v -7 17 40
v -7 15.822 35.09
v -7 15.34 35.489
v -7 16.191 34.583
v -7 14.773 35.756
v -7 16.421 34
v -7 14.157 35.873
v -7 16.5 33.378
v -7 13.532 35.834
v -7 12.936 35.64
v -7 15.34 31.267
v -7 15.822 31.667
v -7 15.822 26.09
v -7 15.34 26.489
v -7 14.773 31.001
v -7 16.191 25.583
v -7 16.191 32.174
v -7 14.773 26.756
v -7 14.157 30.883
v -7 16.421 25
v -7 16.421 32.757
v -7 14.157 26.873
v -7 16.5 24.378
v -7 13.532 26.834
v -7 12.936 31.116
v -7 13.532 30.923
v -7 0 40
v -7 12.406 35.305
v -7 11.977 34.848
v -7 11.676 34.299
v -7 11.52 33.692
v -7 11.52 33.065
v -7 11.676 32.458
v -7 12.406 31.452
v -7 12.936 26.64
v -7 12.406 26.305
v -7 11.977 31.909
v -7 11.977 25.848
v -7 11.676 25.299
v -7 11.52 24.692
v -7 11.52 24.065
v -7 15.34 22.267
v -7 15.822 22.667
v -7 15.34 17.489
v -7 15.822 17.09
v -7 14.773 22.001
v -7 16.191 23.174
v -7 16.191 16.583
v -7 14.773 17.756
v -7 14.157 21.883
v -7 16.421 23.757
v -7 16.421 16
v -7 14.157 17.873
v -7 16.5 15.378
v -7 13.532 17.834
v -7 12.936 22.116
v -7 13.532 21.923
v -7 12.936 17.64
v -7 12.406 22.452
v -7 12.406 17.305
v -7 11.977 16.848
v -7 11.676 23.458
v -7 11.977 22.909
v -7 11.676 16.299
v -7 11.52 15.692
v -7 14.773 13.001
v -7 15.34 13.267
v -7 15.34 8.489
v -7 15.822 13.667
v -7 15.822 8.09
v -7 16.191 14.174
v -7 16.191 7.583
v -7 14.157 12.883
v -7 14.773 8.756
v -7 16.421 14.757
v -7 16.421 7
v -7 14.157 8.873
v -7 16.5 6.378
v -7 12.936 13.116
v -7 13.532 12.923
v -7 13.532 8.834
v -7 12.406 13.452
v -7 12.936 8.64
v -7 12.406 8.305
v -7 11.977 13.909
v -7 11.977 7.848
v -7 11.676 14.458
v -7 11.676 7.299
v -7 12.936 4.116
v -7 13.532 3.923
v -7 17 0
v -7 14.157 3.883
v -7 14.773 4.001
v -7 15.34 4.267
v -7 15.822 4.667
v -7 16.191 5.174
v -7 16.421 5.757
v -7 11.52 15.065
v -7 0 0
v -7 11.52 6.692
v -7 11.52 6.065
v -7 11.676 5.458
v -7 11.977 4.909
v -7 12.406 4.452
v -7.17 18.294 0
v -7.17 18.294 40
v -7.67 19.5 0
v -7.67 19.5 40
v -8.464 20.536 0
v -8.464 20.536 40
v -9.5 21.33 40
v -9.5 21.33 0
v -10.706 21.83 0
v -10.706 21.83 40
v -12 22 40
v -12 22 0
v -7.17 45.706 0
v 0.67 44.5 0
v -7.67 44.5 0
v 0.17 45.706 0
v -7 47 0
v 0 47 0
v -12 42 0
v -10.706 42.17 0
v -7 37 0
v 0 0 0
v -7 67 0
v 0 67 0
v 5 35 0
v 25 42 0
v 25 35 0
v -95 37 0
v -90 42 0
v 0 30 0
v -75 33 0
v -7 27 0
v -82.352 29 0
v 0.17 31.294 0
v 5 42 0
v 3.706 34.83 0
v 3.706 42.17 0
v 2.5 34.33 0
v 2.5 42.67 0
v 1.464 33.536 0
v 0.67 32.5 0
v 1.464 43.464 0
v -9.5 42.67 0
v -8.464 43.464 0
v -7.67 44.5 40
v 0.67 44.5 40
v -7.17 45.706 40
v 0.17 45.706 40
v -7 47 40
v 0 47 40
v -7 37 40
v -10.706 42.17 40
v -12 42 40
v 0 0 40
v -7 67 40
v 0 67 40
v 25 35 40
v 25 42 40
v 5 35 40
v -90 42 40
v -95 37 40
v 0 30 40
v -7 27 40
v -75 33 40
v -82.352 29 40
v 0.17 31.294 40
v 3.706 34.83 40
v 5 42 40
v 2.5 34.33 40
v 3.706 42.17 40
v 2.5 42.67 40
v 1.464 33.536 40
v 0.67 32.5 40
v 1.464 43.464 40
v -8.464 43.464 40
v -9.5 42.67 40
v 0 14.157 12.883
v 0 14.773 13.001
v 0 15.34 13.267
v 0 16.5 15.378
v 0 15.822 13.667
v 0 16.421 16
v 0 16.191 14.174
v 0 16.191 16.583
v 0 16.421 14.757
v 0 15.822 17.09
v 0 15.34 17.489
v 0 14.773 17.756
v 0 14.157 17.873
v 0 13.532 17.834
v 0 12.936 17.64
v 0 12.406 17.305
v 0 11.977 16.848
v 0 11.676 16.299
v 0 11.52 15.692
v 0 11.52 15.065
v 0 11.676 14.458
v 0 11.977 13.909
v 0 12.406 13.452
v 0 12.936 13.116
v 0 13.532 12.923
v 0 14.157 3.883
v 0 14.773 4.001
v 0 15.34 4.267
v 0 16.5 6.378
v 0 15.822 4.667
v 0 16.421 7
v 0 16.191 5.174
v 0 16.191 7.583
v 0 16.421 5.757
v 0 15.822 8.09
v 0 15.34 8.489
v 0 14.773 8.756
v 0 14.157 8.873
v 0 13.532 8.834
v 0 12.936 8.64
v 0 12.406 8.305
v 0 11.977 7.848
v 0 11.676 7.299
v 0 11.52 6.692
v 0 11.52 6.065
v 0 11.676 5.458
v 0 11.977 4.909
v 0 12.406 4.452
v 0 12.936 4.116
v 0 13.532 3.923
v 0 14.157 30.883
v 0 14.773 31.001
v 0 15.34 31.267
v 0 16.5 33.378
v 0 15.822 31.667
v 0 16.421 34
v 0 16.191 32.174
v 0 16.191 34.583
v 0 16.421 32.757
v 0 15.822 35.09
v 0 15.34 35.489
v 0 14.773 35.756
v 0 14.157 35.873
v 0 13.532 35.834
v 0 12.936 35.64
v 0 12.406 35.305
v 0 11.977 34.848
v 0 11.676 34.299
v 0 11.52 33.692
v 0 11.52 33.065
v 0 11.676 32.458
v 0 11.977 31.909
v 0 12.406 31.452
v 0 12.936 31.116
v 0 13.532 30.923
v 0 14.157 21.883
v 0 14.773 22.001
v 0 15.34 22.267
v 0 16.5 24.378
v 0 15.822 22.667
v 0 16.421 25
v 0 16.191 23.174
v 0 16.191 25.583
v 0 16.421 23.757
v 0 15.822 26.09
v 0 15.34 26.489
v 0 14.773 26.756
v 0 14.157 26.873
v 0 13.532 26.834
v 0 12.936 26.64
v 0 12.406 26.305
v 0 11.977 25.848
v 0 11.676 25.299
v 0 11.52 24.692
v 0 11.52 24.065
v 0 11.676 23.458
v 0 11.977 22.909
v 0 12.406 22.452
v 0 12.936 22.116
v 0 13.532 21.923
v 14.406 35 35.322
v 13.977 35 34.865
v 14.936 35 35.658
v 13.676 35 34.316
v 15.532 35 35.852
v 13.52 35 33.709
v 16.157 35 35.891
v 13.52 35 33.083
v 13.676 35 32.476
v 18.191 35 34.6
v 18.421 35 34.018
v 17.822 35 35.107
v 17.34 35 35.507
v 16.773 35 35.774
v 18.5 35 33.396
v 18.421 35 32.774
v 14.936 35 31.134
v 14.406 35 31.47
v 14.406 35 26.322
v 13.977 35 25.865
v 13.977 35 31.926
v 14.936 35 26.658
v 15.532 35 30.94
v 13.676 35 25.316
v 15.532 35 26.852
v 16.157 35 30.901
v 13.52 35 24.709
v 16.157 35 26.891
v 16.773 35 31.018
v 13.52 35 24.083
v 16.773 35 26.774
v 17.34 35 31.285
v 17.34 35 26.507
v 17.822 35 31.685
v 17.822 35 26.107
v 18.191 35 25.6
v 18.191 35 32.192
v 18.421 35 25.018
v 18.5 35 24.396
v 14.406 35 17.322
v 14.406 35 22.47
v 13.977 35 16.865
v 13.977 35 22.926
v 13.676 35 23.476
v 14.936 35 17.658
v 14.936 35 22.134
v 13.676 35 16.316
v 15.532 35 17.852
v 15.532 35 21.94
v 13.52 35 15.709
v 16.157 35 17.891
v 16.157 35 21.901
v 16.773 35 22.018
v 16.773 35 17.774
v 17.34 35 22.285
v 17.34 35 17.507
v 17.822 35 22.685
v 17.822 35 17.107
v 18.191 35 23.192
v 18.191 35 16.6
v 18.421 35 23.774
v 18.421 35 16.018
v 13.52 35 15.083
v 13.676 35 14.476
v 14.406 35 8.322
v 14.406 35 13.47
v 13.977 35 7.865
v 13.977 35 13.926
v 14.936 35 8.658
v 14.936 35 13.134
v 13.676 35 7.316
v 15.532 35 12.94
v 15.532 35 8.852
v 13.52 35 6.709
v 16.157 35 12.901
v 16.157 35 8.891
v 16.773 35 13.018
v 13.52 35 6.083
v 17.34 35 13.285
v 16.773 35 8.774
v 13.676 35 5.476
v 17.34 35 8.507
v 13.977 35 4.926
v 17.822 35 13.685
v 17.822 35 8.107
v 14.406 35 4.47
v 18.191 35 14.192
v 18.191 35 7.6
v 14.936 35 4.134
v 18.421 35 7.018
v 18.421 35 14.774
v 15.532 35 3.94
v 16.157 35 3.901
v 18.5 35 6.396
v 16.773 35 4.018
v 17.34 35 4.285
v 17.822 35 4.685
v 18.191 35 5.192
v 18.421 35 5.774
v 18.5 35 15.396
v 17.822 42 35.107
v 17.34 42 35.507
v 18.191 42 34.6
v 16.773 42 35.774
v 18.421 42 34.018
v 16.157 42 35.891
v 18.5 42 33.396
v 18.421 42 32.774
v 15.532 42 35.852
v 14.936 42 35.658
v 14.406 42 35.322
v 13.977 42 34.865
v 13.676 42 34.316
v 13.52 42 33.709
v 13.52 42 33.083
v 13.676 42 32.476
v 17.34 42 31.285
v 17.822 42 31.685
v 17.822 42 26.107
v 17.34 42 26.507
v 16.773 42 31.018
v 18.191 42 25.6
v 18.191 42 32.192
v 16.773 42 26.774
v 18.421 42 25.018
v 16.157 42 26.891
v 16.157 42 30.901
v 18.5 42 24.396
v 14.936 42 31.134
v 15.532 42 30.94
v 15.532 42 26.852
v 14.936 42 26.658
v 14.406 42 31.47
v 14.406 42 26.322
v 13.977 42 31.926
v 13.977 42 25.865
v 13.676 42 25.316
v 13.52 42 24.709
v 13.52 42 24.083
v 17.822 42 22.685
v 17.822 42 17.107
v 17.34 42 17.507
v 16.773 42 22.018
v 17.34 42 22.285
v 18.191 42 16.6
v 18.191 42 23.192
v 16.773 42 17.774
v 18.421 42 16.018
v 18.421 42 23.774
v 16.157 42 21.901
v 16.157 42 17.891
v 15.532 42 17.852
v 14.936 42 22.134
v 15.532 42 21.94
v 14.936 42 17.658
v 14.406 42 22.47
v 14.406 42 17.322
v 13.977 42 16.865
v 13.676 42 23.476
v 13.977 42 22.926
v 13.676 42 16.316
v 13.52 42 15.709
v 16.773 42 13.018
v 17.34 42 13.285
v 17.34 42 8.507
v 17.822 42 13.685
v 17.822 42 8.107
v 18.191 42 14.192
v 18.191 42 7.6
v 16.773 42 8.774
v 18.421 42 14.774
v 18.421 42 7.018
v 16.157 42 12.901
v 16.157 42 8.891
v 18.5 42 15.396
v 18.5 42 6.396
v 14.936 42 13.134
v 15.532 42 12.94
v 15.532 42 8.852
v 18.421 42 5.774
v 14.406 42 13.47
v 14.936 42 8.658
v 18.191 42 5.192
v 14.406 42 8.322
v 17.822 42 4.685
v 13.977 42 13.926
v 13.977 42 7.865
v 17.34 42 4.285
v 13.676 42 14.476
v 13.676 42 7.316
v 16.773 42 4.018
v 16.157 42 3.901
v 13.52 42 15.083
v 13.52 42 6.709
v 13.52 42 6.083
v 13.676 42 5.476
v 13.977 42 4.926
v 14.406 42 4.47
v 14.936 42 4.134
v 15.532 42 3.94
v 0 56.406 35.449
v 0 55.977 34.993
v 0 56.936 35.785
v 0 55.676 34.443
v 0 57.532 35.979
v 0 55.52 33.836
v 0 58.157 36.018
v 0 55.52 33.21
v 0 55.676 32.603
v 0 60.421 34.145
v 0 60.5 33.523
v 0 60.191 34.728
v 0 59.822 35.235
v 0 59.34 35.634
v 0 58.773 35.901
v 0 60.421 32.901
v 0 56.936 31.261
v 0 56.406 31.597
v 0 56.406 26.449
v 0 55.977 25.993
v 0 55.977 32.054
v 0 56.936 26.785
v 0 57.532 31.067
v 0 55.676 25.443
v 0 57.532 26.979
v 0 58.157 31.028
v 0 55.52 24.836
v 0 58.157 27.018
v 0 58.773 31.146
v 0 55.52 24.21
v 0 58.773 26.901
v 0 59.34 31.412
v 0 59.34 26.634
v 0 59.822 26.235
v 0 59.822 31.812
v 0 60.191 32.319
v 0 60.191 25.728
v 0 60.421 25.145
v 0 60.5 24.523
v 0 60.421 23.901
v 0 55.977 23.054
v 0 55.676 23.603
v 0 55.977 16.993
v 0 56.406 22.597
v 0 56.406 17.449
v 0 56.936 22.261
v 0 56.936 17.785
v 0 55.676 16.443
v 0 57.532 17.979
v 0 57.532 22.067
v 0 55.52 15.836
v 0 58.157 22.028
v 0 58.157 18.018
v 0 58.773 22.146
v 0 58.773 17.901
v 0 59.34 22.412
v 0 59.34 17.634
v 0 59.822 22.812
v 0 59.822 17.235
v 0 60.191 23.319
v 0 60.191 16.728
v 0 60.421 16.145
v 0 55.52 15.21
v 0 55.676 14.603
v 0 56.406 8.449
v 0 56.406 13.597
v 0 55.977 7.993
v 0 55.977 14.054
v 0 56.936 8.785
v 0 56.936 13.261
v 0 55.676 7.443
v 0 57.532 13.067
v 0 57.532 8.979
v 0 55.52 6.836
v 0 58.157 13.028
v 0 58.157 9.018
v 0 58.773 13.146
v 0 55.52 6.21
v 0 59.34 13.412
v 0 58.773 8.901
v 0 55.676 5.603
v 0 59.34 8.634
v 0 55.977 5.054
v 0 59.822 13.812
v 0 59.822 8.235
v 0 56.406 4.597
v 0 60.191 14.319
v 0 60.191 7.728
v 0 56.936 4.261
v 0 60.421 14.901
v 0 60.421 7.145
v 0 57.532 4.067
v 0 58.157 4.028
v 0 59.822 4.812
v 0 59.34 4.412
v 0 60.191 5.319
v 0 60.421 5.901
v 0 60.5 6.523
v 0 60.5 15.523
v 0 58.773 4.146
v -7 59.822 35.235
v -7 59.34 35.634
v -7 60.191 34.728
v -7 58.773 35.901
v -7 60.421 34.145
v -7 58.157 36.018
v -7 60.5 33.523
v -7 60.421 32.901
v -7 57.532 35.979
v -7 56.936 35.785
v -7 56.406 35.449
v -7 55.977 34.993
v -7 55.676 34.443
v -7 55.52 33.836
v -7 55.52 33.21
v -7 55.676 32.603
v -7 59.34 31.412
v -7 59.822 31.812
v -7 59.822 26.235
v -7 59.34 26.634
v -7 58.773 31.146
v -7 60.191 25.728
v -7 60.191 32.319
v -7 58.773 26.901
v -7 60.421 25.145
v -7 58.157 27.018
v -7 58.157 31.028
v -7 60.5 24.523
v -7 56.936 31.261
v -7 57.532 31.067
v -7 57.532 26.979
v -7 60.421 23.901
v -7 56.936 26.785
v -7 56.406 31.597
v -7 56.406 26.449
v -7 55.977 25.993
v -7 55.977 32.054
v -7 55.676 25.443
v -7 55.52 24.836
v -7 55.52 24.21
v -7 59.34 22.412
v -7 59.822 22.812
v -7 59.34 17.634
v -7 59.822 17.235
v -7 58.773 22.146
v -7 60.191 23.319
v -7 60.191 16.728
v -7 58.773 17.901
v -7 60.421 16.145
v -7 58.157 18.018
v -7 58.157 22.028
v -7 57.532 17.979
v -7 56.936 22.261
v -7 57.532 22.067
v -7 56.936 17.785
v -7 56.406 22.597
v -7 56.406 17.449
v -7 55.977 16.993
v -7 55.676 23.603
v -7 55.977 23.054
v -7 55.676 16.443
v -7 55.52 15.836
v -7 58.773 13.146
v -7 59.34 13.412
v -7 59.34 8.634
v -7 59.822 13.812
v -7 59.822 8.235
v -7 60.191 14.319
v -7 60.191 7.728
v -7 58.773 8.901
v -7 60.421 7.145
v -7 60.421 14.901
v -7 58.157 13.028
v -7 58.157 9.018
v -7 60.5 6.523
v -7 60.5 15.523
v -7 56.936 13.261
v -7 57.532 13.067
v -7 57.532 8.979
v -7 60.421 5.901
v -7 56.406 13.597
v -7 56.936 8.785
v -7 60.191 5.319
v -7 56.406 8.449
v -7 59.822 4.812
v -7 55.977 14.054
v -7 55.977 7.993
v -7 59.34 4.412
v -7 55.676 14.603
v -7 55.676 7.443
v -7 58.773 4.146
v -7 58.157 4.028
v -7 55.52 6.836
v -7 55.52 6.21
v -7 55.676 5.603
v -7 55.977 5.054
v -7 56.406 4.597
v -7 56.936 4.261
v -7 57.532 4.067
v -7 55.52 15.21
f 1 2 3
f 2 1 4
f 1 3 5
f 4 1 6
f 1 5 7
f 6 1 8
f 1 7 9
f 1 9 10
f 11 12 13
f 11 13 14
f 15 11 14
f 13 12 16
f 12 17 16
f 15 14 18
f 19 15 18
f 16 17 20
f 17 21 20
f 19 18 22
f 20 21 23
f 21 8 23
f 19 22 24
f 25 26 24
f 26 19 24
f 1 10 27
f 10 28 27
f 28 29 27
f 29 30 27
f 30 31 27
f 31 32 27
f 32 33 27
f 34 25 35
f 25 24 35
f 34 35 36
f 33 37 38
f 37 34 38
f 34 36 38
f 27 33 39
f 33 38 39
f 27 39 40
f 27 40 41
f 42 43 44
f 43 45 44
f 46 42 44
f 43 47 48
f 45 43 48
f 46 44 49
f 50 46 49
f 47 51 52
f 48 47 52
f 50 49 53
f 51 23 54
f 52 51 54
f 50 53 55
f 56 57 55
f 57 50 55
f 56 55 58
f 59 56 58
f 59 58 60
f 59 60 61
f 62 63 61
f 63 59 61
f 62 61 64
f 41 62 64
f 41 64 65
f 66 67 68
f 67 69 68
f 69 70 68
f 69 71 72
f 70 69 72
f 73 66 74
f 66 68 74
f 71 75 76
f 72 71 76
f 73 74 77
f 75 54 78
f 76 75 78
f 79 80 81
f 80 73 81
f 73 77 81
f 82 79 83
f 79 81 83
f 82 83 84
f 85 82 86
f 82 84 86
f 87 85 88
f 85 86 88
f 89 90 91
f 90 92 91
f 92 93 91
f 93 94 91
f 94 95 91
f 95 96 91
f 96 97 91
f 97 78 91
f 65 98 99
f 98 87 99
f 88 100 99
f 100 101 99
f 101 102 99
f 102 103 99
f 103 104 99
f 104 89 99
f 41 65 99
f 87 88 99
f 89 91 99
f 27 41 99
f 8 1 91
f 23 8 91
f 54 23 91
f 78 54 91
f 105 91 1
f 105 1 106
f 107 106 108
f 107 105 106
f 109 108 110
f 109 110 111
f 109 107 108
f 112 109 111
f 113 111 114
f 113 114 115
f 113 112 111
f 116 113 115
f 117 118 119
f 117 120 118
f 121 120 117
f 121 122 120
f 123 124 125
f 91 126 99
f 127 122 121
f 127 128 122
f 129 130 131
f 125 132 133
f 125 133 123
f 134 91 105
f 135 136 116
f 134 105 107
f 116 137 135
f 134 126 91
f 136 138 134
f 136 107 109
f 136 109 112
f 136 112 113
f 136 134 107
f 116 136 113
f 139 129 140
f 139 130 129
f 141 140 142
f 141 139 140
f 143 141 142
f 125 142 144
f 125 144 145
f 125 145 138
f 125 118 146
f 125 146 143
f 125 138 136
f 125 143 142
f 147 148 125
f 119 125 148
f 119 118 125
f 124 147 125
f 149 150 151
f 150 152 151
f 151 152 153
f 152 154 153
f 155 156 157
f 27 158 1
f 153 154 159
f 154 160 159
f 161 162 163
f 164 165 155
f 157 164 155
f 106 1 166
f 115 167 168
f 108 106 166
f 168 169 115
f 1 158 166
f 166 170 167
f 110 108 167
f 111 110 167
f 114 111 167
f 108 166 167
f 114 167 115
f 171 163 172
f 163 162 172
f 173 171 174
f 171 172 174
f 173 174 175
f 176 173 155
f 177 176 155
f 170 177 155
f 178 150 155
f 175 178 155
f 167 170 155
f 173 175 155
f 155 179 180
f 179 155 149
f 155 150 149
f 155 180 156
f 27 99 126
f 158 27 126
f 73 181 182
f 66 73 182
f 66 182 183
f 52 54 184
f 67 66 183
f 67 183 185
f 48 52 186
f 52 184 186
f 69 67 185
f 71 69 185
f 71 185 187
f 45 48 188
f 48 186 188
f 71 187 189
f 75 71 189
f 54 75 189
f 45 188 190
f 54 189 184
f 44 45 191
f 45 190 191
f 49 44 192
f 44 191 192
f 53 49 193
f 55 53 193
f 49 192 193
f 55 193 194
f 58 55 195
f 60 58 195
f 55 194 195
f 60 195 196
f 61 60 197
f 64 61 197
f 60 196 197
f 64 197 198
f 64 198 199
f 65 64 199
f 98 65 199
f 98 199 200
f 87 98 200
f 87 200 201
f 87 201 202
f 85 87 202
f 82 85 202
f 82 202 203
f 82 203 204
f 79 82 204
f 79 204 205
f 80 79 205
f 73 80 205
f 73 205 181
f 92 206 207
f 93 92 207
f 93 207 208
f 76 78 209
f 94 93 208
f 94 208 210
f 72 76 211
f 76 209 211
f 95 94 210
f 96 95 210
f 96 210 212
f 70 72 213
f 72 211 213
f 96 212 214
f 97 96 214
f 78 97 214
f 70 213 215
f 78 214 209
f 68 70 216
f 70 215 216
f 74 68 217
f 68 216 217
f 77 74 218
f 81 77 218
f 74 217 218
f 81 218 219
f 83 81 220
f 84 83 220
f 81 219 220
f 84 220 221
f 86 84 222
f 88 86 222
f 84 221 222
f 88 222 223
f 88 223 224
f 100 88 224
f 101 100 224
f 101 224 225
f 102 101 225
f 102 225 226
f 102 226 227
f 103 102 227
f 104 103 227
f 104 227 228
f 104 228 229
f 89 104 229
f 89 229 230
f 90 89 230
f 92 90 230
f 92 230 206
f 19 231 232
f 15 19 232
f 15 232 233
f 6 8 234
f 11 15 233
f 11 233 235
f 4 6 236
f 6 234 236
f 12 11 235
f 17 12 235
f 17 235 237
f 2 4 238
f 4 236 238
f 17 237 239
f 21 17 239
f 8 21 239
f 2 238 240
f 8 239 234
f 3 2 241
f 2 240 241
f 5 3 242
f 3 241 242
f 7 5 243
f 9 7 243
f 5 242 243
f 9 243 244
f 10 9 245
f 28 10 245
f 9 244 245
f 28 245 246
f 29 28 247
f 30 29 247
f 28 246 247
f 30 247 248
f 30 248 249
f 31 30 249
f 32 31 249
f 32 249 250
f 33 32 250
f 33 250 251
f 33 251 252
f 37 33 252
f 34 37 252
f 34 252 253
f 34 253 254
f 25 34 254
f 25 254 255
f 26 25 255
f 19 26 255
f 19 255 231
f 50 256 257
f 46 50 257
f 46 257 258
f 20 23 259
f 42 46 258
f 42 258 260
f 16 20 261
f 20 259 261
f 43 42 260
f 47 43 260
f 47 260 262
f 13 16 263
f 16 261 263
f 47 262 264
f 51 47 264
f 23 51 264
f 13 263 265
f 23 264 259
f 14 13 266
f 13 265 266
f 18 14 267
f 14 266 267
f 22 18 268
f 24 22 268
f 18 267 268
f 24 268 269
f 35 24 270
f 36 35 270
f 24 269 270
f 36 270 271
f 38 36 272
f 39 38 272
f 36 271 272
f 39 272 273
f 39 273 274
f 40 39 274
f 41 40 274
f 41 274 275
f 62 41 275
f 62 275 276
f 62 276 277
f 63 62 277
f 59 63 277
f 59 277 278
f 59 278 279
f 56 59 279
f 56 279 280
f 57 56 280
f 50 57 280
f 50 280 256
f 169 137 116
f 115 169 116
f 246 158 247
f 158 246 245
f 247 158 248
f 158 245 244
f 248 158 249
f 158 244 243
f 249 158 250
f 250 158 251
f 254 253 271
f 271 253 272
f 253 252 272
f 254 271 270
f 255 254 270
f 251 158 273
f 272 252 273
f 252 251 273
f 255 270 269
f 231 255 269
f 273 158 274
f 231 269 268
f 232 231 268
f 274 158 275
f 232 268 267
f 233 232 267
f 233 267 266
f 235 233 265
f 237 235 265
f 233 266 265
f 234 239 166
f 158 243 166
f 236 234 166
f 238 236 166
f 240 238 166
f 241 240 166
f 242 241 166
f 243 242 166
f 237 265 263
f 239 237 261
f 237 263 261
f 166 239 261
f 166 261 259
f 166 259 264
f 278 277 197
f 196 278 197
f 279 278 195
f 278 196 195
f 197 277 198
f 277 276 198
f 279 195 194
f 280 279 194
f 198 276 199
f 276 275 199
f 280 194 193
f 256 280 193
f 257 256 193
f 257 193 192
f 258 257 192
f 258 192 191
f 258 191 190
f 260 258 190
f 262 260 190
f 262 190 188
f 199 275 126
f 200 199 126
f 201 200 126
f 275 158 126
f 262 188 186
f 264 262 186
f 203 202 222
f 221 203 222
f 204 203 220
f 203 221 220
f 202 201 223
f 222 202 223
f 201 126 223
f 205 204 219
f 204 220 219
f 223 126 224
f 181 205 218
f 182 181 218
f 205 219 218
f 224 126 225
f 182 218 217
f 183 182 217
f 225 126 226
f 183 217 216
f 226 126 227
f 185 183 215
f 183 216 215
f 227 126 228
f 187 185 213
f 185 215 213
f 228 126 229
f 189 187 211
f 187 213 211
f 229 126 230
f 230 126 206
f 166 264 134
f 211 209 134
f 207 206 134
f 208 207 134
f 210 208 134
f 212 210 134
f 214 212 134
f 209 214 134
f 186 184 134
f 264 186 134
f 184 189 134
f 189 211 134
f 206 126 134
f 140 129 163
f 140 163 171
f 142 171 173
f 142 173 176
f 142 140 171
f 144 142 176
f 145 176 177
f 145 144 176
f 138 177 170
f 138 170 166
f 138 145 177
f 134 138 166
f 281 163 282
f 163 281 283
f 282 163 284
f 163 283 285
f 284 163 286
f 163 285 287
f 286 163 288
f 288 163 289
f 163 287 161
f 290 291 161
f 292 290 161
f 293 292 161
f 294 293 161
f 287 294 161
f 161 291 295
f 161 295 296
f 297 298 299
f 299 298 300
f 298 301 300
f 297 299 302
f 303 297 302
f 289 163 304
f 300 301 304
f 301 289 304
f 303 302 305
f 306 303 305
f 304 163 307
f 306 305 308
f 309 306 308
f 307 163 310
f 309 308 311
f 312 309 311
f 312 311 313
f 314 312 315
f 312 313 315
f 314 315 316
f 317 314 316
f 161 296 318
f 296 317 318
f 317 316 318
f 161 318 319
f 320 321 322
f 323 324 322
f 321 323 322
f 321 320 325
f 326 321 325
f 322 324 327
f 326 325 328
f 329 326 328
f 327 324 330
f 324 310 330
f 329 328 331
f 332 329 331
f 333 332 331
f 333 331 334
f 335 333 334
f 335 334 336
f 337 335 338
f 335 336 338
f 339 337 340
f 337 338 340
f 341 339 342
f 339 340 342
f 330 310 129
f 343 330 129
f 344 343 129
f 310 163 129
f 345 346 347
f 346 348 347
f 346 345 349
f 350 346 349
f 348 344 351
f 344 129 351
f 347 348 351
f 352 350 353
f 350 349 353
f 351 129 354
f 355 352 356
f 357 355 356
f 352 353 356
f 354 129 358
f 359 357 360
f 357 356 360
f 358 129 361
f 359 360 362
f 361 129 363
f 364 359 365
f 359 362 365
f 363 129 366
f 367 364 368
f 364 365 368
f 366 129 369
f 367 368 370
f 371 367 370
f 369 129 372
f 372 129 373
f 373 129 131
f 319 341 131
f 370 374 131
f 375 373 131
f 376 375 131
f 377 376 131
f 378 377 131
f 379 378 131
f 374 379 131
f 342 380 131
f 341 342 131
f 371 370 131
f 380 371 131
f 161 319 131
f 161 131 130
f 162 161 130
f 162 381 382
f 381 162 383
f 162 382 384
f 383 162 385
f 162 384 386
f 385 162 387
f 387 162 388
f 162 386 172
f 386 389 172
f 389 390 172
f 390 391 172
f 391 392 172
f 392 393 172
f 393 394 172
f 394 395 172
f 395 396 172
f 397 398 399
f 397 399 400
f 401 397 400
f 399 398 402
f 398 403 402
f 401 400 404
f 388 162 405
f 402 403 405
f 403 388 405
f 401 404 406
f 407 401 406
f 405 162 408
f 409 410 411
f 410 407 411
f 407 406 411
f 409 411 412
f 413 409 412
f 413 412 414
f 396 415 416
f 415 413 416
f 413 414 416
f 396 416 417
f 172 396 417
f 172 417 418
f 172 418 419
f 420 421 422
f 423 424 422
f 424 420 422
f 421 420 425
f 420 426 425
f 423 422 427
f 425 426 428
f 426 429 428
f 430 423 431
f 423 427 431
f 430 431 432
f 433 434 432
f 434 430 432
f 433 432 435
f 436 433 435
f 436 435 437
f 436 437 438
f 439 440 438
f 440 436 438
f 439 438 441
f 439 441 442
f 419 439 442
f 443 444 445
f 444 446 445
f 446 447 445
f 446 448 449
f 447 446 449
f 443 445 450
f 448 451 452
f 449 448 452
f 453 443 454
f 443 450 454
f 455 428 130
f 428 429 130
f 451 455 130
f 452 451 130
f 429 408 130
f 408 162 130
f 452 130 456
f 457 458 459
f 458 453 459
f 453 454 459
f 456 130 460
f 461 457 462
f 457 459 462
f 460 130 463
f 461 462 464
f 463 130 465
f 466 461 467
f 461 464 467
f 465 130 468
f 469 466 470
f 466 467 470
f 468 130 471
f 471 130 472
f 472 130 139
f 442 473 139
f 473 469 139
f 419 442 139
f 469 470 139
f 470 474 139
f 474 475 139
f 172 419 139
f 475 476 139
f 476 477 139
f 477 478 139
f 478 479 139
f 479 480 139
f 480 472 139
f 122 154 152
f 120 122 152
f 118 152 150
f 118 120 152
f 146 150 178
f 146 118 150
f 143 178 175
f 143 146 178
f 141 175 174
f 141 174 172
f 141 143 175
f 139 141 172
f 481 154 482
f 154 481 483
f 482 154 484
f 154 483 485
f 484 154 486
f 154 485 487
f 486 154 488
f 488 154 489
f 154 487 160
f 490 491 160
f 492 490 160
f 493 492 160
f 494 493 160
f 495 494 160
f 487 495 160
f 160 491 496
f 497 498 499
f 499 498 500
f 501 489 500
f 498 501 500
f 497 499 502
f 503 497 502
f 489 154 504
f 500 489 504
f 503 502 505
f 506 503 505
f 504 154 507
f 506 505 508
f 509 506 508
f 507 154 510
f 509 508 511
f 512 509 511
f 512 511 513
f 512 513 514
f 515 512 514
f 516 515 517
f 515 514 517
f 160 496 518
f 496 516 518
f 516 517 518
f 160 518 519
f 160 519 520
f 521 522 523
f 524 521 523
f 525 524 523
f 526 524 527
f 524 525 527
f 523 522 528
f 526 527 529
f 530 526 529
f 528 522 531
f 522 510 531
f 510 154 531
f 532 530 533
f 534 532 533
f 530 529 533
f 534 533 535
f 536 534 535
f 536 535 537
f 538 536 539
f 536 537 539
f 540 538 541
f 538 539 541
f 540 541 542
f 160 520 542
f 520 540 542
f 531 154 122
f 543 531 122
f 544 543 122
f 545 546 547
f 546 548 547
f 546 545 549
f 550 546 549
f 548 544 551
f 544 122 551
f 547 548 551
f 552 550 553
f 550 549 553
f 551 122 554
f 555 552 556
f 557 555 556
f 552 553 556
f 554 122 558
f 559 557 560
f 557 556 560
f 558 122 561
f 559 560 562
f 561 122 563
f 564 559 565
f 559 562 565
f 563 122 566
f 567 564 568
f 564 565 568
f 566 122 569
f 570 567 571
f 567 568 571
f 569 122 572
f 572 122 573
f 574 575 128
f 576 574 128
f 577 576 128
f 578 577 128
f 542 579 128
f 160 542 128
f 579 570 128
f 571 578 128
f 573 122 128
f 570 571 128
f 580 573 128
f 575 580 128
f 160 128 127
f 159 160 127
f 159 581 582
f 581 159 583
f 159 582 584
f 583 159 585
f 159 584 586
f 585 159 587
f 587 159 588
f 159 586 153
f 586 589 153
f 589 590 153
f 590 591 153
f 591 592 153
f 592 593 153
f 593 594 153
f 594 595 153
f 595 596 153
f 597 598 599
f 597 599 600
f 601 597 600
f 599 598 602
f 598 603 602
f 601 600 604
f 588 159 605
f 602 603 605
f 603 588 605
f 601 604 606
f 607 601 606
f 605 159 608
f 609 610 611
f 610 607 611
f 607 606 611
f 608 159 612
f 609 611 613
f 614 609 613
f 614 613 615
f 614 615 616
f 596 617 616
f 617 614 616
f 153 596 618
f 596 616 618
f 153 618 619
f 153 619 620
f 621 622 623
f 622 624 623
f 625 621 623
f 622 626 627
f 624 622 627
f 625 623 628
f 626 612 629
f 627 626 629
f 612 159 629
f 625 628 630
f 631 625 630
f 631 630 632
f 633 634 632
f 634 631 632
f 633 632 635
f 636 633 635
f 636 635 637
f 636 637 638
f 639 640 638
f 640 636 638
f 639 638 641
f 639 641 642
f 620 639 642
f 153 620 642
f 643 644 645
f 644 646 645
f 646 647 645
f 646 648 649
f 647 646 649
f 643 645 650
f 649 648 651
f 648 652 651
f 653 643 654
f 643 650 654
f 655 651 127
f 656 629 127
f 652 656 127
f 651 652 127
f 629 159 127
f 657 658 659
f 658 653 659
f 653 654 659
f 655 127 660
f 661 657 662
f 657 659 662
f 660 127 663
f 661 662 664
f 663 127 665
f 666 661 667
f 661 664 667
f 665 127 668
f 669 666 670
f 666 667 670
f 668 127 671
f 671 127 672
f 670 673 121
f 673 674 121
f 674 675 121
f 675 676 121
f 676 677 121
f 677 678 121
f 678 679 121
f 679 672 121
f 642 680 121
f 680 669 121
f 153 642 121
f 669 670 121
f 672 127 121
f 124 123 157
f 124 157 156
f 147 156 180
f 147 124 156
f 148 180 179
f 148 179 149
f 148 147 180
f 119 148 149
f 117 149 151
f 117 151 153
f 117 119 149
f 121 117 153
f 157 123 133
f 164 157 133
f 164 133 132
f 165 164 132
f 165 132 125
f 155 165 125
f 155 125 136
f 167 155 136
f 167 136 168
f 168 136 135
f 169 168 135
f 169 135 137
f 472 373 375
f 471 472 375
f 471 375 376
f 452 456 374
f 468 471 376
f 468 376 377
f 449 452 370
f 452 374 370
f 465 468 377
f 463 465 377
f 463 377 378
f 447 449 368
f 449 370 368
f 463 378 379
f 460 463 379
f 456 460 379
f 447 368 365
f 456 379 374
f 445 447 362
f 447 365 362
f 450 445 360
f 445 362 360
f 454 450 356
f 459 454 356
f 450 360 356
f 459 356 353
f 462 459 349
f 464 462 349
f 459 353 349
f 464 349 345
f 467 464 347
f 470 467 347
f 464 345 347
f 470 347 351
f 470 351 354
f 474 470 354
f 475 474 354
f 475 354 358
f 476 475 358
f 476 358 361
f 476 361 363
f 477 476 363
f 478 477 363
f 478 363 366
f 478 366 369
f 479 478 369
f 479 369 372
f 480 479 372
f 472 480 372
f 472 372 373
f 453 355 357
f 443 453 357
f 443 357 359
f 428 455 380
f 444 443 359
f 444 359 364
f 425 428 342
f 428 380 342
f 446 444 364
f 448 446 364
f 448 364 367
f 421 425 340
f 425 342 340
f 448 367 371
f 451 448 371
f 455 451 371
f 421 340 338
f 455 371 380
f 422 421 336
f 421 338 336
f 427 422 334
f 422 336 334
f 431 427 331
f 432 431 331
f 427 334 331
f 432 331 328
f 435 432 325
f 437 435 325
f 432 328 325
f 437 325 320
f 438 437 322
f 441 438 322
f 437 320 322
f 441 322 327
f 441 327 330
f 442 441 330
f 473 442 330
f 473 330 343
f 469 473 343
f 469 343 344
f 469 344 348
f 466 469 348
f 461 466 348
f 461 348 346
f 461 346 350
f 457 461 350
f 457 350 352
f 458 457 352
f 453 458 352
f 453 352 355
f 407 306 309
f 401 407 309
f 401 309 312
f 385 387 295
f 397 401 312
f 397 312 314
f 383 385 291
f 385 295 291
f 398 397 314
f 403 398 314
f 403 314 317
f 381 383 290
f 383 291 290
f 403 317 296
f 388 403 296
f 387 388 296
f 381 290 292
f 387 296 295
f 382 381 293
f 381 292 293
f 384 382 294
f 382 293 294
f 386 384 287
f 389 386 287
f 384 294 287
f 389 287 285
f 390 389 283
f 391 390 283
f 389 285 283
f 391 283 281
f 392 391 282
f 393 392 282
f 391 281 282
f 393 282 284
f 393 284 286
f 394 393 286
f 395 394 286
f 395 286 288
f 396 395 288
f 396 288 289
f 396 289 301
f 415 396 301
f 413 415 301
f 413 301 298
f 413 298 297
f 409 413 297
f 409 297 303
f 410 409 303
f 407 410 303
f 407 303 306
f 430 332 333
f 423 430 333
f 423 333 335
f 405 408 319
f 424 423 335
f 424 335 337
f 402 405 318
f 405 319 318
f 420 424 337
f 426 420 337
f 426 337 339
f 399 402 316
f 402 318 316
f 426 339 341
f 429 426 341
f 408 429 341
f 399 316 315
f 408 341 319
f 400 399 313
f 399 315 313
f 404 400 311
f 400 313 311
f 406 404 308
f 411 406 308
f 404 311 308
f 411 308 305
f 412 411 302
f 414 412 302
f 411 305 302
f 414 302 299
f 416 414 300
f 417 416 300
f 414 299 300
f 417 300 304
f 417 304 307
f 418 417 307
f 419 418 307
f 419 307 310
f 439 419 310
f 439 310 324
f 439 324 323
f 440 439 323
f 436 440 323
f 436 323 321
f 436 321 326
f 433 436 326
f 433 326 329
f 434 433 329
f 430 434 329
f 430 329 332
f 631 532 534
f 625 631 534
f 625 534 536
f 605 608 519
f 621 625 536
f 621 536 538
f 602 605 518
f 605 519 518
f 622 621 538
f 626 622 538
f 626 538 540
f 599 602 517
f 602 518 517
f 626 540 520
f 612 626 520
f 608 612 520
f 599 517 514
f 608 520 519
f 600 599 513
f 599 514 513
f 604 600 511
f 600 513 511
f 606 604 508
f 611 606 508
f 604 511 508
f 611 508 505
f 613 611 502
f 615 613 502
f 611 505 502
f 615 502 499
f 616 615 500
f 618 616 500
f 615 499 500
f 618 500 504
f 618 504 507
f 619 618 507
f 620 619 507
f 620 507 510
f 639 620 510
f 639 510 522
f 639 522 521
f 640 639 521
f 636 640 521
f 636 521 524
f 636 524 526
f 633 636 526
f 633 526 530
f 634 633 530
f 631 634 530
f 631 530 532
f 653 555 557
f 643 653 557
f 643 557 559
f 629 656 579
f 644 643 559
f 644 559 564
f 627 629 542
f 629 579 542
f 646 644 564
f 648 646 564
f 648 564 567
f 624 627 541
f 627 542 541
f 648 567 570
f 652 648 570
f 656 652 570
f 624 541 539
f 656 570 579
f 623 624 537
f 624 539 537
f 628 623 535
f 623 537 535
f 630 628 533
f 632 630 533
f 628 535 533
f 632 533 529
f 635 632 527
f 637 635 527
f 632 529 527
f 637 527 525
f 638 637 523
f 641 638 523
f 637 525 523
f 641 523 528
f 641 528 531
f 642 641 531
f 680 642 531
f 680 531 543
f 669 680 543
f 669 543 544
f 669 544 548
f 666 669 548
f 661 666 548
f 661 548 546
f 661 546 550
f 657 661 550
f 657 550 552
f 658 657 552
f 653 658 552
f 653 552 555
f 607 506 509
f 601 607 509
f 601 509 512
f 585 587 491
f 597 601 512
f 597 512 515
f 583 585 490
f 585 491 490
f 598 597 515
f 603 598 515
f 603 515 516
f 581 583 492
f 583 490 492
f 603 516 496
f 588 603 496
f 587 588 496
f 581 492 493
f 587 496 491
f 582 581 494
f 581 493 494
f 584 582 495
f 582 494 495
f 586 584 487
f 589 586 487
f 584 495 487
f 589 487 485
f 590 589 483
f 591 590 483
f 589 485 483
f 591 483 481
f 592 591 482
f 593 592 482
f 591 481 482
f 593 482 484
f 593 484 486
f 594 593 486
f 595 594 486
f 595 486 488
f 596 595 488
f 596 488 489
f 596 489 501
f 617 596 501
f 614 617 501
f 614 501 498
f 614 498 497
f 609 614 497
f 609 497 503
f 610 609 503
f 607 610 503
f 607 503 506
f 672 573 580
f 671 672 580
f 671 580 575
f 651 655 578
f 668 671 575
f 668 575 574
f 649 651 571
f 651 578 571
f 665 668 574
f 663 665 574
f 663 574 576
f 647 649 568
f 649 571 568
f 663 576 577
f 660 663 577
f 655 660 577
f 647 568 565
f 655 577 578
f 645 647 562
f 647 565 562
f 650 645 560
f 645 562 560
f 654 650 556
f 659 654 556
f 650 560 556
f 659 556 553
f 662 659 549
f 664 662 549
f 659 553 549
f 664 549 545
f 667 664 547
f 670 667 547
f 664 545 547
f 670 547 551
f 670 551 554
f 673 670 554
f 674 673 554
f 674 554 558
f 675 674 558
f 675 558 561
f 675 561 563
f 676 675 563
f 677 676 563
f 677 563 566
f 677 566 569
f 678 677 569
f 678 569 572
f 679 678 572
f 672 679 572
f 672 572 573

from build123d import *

# Parameters (mm, degrees)
PAD_DEPTH              = 40
SKETCH001_R            = 2.5
POCKET_DEPTH           = 7
LINEARPATTERN_COUNT    = 4
LINEARPATTERN_PITCH    = 9
SKETCH002_R            = 2.5
POCKET001_DEPTH        = 7
LINEARPATTERN001_COUNT = 4
LINEARPATTERN001_PITCH = 9
SKETCH003_R            = 2.5
POCKET002_DEPTH        = 7
LINEARPATTERN002_COUNT = 4
LINEARPATTERN002_PITCH = 9


with BuildPart() as part:
    # Sketch → Pad (new body)
    with BuildSketch(Plane.XY):
        with BuildLine():
            Line((-7, 0), (0, 0))
            Line((0, 0), (0, 30))
            ThreePointArc((5.000001, 35), (1.464466, 33.535534), (0, 30))
            Line((5.000001, 35), (25, 35))
            Line((25, 35), (25, 42))
            Line((25, 42), (5, 42))
            ThreePointArc((0, 47), (1.464466, 43.464466), (5, 42))
            Line((0, 47), (0, 67))
            Line((0, 67), (-7, 67))
            Line((-7, 67), (-7, 47))
            ThreePointArc((-12, 42), (-8.464466, 43.464466), (-7, 47))
            Line((-12, 42), (-90, 42))
            Line((-90, 42), (-95, 37))
            Line((-95, 37), (-7, 37))
            Line((-7, 37), (-7, 27))
            Line((-7, 27), (-75, 33))
            Line((-75, 33), (-82.351578, 29))
            Line((-82.351578, 29), (-12, 22))
            ThreePointArc((-7, 17), (-8.464466, 20.535534), (-12, 22))
            Line((-7, 17), (-7, 0))
        make_face()
    extrude(amount=PAD_DEPTH)

    # Sketch001 → Pocket (cut)
    with BuildSketch(Plane.YZ):
        with Locations((58, 33.523144)):
            Circle(SKETCH001_R)
    pocket = extrude(amount=-POCKET_DEPTH, mode=Mode.SUBTRACT)

    # LinearPattern: Pocket ×4
    with Locations(*[(0, 0, -i * LINEARPATTERN_PITCH) for i in range(1, LINEARPATTERN_COUNT)]):
        add(pocket, mode=Mode.SUBTRACT)

    # Sketch002 → Pocket001 (cut)
    with BuildSketch(Plane.XZ.offset(-35)):
        with Locations((16, 33.395916)):
            Circle(SKETCH002_R)
    pocket001 = extrude(amount=-POCKET001_DEPTH, mode=Mode.SUBTRACT)

    # LinearPattern001: Pocket001 ×4
    with Locations(*[(0, 0, -i * LINEARPATTERN001_PITCH) for i in range(1, LINEARPATTERN001_COUNT)]):
        add(pocket001, mode=Mode.SUBTRACT)

    # Sketch003 → Pocket002 (cut)
    with BuildSketch(Plane.YZ):
        with Locations((14, 33.378235)):
            Circle(SKETCH003_R)
    pocket002 = extrude(amount=-POCKET002_DEPTH, mode=Mode.SUBTRACT)

    # LinearPattern002: Pocket002 ×4
    with Locations(*[(0, 0, -i * LINEARPATTERN002_PITCH) for i in range(1, LINEARPATTERN002_COUNT)]):
        add(pocket002, mode=Mode.SUBTRACT)


solid = part.part
